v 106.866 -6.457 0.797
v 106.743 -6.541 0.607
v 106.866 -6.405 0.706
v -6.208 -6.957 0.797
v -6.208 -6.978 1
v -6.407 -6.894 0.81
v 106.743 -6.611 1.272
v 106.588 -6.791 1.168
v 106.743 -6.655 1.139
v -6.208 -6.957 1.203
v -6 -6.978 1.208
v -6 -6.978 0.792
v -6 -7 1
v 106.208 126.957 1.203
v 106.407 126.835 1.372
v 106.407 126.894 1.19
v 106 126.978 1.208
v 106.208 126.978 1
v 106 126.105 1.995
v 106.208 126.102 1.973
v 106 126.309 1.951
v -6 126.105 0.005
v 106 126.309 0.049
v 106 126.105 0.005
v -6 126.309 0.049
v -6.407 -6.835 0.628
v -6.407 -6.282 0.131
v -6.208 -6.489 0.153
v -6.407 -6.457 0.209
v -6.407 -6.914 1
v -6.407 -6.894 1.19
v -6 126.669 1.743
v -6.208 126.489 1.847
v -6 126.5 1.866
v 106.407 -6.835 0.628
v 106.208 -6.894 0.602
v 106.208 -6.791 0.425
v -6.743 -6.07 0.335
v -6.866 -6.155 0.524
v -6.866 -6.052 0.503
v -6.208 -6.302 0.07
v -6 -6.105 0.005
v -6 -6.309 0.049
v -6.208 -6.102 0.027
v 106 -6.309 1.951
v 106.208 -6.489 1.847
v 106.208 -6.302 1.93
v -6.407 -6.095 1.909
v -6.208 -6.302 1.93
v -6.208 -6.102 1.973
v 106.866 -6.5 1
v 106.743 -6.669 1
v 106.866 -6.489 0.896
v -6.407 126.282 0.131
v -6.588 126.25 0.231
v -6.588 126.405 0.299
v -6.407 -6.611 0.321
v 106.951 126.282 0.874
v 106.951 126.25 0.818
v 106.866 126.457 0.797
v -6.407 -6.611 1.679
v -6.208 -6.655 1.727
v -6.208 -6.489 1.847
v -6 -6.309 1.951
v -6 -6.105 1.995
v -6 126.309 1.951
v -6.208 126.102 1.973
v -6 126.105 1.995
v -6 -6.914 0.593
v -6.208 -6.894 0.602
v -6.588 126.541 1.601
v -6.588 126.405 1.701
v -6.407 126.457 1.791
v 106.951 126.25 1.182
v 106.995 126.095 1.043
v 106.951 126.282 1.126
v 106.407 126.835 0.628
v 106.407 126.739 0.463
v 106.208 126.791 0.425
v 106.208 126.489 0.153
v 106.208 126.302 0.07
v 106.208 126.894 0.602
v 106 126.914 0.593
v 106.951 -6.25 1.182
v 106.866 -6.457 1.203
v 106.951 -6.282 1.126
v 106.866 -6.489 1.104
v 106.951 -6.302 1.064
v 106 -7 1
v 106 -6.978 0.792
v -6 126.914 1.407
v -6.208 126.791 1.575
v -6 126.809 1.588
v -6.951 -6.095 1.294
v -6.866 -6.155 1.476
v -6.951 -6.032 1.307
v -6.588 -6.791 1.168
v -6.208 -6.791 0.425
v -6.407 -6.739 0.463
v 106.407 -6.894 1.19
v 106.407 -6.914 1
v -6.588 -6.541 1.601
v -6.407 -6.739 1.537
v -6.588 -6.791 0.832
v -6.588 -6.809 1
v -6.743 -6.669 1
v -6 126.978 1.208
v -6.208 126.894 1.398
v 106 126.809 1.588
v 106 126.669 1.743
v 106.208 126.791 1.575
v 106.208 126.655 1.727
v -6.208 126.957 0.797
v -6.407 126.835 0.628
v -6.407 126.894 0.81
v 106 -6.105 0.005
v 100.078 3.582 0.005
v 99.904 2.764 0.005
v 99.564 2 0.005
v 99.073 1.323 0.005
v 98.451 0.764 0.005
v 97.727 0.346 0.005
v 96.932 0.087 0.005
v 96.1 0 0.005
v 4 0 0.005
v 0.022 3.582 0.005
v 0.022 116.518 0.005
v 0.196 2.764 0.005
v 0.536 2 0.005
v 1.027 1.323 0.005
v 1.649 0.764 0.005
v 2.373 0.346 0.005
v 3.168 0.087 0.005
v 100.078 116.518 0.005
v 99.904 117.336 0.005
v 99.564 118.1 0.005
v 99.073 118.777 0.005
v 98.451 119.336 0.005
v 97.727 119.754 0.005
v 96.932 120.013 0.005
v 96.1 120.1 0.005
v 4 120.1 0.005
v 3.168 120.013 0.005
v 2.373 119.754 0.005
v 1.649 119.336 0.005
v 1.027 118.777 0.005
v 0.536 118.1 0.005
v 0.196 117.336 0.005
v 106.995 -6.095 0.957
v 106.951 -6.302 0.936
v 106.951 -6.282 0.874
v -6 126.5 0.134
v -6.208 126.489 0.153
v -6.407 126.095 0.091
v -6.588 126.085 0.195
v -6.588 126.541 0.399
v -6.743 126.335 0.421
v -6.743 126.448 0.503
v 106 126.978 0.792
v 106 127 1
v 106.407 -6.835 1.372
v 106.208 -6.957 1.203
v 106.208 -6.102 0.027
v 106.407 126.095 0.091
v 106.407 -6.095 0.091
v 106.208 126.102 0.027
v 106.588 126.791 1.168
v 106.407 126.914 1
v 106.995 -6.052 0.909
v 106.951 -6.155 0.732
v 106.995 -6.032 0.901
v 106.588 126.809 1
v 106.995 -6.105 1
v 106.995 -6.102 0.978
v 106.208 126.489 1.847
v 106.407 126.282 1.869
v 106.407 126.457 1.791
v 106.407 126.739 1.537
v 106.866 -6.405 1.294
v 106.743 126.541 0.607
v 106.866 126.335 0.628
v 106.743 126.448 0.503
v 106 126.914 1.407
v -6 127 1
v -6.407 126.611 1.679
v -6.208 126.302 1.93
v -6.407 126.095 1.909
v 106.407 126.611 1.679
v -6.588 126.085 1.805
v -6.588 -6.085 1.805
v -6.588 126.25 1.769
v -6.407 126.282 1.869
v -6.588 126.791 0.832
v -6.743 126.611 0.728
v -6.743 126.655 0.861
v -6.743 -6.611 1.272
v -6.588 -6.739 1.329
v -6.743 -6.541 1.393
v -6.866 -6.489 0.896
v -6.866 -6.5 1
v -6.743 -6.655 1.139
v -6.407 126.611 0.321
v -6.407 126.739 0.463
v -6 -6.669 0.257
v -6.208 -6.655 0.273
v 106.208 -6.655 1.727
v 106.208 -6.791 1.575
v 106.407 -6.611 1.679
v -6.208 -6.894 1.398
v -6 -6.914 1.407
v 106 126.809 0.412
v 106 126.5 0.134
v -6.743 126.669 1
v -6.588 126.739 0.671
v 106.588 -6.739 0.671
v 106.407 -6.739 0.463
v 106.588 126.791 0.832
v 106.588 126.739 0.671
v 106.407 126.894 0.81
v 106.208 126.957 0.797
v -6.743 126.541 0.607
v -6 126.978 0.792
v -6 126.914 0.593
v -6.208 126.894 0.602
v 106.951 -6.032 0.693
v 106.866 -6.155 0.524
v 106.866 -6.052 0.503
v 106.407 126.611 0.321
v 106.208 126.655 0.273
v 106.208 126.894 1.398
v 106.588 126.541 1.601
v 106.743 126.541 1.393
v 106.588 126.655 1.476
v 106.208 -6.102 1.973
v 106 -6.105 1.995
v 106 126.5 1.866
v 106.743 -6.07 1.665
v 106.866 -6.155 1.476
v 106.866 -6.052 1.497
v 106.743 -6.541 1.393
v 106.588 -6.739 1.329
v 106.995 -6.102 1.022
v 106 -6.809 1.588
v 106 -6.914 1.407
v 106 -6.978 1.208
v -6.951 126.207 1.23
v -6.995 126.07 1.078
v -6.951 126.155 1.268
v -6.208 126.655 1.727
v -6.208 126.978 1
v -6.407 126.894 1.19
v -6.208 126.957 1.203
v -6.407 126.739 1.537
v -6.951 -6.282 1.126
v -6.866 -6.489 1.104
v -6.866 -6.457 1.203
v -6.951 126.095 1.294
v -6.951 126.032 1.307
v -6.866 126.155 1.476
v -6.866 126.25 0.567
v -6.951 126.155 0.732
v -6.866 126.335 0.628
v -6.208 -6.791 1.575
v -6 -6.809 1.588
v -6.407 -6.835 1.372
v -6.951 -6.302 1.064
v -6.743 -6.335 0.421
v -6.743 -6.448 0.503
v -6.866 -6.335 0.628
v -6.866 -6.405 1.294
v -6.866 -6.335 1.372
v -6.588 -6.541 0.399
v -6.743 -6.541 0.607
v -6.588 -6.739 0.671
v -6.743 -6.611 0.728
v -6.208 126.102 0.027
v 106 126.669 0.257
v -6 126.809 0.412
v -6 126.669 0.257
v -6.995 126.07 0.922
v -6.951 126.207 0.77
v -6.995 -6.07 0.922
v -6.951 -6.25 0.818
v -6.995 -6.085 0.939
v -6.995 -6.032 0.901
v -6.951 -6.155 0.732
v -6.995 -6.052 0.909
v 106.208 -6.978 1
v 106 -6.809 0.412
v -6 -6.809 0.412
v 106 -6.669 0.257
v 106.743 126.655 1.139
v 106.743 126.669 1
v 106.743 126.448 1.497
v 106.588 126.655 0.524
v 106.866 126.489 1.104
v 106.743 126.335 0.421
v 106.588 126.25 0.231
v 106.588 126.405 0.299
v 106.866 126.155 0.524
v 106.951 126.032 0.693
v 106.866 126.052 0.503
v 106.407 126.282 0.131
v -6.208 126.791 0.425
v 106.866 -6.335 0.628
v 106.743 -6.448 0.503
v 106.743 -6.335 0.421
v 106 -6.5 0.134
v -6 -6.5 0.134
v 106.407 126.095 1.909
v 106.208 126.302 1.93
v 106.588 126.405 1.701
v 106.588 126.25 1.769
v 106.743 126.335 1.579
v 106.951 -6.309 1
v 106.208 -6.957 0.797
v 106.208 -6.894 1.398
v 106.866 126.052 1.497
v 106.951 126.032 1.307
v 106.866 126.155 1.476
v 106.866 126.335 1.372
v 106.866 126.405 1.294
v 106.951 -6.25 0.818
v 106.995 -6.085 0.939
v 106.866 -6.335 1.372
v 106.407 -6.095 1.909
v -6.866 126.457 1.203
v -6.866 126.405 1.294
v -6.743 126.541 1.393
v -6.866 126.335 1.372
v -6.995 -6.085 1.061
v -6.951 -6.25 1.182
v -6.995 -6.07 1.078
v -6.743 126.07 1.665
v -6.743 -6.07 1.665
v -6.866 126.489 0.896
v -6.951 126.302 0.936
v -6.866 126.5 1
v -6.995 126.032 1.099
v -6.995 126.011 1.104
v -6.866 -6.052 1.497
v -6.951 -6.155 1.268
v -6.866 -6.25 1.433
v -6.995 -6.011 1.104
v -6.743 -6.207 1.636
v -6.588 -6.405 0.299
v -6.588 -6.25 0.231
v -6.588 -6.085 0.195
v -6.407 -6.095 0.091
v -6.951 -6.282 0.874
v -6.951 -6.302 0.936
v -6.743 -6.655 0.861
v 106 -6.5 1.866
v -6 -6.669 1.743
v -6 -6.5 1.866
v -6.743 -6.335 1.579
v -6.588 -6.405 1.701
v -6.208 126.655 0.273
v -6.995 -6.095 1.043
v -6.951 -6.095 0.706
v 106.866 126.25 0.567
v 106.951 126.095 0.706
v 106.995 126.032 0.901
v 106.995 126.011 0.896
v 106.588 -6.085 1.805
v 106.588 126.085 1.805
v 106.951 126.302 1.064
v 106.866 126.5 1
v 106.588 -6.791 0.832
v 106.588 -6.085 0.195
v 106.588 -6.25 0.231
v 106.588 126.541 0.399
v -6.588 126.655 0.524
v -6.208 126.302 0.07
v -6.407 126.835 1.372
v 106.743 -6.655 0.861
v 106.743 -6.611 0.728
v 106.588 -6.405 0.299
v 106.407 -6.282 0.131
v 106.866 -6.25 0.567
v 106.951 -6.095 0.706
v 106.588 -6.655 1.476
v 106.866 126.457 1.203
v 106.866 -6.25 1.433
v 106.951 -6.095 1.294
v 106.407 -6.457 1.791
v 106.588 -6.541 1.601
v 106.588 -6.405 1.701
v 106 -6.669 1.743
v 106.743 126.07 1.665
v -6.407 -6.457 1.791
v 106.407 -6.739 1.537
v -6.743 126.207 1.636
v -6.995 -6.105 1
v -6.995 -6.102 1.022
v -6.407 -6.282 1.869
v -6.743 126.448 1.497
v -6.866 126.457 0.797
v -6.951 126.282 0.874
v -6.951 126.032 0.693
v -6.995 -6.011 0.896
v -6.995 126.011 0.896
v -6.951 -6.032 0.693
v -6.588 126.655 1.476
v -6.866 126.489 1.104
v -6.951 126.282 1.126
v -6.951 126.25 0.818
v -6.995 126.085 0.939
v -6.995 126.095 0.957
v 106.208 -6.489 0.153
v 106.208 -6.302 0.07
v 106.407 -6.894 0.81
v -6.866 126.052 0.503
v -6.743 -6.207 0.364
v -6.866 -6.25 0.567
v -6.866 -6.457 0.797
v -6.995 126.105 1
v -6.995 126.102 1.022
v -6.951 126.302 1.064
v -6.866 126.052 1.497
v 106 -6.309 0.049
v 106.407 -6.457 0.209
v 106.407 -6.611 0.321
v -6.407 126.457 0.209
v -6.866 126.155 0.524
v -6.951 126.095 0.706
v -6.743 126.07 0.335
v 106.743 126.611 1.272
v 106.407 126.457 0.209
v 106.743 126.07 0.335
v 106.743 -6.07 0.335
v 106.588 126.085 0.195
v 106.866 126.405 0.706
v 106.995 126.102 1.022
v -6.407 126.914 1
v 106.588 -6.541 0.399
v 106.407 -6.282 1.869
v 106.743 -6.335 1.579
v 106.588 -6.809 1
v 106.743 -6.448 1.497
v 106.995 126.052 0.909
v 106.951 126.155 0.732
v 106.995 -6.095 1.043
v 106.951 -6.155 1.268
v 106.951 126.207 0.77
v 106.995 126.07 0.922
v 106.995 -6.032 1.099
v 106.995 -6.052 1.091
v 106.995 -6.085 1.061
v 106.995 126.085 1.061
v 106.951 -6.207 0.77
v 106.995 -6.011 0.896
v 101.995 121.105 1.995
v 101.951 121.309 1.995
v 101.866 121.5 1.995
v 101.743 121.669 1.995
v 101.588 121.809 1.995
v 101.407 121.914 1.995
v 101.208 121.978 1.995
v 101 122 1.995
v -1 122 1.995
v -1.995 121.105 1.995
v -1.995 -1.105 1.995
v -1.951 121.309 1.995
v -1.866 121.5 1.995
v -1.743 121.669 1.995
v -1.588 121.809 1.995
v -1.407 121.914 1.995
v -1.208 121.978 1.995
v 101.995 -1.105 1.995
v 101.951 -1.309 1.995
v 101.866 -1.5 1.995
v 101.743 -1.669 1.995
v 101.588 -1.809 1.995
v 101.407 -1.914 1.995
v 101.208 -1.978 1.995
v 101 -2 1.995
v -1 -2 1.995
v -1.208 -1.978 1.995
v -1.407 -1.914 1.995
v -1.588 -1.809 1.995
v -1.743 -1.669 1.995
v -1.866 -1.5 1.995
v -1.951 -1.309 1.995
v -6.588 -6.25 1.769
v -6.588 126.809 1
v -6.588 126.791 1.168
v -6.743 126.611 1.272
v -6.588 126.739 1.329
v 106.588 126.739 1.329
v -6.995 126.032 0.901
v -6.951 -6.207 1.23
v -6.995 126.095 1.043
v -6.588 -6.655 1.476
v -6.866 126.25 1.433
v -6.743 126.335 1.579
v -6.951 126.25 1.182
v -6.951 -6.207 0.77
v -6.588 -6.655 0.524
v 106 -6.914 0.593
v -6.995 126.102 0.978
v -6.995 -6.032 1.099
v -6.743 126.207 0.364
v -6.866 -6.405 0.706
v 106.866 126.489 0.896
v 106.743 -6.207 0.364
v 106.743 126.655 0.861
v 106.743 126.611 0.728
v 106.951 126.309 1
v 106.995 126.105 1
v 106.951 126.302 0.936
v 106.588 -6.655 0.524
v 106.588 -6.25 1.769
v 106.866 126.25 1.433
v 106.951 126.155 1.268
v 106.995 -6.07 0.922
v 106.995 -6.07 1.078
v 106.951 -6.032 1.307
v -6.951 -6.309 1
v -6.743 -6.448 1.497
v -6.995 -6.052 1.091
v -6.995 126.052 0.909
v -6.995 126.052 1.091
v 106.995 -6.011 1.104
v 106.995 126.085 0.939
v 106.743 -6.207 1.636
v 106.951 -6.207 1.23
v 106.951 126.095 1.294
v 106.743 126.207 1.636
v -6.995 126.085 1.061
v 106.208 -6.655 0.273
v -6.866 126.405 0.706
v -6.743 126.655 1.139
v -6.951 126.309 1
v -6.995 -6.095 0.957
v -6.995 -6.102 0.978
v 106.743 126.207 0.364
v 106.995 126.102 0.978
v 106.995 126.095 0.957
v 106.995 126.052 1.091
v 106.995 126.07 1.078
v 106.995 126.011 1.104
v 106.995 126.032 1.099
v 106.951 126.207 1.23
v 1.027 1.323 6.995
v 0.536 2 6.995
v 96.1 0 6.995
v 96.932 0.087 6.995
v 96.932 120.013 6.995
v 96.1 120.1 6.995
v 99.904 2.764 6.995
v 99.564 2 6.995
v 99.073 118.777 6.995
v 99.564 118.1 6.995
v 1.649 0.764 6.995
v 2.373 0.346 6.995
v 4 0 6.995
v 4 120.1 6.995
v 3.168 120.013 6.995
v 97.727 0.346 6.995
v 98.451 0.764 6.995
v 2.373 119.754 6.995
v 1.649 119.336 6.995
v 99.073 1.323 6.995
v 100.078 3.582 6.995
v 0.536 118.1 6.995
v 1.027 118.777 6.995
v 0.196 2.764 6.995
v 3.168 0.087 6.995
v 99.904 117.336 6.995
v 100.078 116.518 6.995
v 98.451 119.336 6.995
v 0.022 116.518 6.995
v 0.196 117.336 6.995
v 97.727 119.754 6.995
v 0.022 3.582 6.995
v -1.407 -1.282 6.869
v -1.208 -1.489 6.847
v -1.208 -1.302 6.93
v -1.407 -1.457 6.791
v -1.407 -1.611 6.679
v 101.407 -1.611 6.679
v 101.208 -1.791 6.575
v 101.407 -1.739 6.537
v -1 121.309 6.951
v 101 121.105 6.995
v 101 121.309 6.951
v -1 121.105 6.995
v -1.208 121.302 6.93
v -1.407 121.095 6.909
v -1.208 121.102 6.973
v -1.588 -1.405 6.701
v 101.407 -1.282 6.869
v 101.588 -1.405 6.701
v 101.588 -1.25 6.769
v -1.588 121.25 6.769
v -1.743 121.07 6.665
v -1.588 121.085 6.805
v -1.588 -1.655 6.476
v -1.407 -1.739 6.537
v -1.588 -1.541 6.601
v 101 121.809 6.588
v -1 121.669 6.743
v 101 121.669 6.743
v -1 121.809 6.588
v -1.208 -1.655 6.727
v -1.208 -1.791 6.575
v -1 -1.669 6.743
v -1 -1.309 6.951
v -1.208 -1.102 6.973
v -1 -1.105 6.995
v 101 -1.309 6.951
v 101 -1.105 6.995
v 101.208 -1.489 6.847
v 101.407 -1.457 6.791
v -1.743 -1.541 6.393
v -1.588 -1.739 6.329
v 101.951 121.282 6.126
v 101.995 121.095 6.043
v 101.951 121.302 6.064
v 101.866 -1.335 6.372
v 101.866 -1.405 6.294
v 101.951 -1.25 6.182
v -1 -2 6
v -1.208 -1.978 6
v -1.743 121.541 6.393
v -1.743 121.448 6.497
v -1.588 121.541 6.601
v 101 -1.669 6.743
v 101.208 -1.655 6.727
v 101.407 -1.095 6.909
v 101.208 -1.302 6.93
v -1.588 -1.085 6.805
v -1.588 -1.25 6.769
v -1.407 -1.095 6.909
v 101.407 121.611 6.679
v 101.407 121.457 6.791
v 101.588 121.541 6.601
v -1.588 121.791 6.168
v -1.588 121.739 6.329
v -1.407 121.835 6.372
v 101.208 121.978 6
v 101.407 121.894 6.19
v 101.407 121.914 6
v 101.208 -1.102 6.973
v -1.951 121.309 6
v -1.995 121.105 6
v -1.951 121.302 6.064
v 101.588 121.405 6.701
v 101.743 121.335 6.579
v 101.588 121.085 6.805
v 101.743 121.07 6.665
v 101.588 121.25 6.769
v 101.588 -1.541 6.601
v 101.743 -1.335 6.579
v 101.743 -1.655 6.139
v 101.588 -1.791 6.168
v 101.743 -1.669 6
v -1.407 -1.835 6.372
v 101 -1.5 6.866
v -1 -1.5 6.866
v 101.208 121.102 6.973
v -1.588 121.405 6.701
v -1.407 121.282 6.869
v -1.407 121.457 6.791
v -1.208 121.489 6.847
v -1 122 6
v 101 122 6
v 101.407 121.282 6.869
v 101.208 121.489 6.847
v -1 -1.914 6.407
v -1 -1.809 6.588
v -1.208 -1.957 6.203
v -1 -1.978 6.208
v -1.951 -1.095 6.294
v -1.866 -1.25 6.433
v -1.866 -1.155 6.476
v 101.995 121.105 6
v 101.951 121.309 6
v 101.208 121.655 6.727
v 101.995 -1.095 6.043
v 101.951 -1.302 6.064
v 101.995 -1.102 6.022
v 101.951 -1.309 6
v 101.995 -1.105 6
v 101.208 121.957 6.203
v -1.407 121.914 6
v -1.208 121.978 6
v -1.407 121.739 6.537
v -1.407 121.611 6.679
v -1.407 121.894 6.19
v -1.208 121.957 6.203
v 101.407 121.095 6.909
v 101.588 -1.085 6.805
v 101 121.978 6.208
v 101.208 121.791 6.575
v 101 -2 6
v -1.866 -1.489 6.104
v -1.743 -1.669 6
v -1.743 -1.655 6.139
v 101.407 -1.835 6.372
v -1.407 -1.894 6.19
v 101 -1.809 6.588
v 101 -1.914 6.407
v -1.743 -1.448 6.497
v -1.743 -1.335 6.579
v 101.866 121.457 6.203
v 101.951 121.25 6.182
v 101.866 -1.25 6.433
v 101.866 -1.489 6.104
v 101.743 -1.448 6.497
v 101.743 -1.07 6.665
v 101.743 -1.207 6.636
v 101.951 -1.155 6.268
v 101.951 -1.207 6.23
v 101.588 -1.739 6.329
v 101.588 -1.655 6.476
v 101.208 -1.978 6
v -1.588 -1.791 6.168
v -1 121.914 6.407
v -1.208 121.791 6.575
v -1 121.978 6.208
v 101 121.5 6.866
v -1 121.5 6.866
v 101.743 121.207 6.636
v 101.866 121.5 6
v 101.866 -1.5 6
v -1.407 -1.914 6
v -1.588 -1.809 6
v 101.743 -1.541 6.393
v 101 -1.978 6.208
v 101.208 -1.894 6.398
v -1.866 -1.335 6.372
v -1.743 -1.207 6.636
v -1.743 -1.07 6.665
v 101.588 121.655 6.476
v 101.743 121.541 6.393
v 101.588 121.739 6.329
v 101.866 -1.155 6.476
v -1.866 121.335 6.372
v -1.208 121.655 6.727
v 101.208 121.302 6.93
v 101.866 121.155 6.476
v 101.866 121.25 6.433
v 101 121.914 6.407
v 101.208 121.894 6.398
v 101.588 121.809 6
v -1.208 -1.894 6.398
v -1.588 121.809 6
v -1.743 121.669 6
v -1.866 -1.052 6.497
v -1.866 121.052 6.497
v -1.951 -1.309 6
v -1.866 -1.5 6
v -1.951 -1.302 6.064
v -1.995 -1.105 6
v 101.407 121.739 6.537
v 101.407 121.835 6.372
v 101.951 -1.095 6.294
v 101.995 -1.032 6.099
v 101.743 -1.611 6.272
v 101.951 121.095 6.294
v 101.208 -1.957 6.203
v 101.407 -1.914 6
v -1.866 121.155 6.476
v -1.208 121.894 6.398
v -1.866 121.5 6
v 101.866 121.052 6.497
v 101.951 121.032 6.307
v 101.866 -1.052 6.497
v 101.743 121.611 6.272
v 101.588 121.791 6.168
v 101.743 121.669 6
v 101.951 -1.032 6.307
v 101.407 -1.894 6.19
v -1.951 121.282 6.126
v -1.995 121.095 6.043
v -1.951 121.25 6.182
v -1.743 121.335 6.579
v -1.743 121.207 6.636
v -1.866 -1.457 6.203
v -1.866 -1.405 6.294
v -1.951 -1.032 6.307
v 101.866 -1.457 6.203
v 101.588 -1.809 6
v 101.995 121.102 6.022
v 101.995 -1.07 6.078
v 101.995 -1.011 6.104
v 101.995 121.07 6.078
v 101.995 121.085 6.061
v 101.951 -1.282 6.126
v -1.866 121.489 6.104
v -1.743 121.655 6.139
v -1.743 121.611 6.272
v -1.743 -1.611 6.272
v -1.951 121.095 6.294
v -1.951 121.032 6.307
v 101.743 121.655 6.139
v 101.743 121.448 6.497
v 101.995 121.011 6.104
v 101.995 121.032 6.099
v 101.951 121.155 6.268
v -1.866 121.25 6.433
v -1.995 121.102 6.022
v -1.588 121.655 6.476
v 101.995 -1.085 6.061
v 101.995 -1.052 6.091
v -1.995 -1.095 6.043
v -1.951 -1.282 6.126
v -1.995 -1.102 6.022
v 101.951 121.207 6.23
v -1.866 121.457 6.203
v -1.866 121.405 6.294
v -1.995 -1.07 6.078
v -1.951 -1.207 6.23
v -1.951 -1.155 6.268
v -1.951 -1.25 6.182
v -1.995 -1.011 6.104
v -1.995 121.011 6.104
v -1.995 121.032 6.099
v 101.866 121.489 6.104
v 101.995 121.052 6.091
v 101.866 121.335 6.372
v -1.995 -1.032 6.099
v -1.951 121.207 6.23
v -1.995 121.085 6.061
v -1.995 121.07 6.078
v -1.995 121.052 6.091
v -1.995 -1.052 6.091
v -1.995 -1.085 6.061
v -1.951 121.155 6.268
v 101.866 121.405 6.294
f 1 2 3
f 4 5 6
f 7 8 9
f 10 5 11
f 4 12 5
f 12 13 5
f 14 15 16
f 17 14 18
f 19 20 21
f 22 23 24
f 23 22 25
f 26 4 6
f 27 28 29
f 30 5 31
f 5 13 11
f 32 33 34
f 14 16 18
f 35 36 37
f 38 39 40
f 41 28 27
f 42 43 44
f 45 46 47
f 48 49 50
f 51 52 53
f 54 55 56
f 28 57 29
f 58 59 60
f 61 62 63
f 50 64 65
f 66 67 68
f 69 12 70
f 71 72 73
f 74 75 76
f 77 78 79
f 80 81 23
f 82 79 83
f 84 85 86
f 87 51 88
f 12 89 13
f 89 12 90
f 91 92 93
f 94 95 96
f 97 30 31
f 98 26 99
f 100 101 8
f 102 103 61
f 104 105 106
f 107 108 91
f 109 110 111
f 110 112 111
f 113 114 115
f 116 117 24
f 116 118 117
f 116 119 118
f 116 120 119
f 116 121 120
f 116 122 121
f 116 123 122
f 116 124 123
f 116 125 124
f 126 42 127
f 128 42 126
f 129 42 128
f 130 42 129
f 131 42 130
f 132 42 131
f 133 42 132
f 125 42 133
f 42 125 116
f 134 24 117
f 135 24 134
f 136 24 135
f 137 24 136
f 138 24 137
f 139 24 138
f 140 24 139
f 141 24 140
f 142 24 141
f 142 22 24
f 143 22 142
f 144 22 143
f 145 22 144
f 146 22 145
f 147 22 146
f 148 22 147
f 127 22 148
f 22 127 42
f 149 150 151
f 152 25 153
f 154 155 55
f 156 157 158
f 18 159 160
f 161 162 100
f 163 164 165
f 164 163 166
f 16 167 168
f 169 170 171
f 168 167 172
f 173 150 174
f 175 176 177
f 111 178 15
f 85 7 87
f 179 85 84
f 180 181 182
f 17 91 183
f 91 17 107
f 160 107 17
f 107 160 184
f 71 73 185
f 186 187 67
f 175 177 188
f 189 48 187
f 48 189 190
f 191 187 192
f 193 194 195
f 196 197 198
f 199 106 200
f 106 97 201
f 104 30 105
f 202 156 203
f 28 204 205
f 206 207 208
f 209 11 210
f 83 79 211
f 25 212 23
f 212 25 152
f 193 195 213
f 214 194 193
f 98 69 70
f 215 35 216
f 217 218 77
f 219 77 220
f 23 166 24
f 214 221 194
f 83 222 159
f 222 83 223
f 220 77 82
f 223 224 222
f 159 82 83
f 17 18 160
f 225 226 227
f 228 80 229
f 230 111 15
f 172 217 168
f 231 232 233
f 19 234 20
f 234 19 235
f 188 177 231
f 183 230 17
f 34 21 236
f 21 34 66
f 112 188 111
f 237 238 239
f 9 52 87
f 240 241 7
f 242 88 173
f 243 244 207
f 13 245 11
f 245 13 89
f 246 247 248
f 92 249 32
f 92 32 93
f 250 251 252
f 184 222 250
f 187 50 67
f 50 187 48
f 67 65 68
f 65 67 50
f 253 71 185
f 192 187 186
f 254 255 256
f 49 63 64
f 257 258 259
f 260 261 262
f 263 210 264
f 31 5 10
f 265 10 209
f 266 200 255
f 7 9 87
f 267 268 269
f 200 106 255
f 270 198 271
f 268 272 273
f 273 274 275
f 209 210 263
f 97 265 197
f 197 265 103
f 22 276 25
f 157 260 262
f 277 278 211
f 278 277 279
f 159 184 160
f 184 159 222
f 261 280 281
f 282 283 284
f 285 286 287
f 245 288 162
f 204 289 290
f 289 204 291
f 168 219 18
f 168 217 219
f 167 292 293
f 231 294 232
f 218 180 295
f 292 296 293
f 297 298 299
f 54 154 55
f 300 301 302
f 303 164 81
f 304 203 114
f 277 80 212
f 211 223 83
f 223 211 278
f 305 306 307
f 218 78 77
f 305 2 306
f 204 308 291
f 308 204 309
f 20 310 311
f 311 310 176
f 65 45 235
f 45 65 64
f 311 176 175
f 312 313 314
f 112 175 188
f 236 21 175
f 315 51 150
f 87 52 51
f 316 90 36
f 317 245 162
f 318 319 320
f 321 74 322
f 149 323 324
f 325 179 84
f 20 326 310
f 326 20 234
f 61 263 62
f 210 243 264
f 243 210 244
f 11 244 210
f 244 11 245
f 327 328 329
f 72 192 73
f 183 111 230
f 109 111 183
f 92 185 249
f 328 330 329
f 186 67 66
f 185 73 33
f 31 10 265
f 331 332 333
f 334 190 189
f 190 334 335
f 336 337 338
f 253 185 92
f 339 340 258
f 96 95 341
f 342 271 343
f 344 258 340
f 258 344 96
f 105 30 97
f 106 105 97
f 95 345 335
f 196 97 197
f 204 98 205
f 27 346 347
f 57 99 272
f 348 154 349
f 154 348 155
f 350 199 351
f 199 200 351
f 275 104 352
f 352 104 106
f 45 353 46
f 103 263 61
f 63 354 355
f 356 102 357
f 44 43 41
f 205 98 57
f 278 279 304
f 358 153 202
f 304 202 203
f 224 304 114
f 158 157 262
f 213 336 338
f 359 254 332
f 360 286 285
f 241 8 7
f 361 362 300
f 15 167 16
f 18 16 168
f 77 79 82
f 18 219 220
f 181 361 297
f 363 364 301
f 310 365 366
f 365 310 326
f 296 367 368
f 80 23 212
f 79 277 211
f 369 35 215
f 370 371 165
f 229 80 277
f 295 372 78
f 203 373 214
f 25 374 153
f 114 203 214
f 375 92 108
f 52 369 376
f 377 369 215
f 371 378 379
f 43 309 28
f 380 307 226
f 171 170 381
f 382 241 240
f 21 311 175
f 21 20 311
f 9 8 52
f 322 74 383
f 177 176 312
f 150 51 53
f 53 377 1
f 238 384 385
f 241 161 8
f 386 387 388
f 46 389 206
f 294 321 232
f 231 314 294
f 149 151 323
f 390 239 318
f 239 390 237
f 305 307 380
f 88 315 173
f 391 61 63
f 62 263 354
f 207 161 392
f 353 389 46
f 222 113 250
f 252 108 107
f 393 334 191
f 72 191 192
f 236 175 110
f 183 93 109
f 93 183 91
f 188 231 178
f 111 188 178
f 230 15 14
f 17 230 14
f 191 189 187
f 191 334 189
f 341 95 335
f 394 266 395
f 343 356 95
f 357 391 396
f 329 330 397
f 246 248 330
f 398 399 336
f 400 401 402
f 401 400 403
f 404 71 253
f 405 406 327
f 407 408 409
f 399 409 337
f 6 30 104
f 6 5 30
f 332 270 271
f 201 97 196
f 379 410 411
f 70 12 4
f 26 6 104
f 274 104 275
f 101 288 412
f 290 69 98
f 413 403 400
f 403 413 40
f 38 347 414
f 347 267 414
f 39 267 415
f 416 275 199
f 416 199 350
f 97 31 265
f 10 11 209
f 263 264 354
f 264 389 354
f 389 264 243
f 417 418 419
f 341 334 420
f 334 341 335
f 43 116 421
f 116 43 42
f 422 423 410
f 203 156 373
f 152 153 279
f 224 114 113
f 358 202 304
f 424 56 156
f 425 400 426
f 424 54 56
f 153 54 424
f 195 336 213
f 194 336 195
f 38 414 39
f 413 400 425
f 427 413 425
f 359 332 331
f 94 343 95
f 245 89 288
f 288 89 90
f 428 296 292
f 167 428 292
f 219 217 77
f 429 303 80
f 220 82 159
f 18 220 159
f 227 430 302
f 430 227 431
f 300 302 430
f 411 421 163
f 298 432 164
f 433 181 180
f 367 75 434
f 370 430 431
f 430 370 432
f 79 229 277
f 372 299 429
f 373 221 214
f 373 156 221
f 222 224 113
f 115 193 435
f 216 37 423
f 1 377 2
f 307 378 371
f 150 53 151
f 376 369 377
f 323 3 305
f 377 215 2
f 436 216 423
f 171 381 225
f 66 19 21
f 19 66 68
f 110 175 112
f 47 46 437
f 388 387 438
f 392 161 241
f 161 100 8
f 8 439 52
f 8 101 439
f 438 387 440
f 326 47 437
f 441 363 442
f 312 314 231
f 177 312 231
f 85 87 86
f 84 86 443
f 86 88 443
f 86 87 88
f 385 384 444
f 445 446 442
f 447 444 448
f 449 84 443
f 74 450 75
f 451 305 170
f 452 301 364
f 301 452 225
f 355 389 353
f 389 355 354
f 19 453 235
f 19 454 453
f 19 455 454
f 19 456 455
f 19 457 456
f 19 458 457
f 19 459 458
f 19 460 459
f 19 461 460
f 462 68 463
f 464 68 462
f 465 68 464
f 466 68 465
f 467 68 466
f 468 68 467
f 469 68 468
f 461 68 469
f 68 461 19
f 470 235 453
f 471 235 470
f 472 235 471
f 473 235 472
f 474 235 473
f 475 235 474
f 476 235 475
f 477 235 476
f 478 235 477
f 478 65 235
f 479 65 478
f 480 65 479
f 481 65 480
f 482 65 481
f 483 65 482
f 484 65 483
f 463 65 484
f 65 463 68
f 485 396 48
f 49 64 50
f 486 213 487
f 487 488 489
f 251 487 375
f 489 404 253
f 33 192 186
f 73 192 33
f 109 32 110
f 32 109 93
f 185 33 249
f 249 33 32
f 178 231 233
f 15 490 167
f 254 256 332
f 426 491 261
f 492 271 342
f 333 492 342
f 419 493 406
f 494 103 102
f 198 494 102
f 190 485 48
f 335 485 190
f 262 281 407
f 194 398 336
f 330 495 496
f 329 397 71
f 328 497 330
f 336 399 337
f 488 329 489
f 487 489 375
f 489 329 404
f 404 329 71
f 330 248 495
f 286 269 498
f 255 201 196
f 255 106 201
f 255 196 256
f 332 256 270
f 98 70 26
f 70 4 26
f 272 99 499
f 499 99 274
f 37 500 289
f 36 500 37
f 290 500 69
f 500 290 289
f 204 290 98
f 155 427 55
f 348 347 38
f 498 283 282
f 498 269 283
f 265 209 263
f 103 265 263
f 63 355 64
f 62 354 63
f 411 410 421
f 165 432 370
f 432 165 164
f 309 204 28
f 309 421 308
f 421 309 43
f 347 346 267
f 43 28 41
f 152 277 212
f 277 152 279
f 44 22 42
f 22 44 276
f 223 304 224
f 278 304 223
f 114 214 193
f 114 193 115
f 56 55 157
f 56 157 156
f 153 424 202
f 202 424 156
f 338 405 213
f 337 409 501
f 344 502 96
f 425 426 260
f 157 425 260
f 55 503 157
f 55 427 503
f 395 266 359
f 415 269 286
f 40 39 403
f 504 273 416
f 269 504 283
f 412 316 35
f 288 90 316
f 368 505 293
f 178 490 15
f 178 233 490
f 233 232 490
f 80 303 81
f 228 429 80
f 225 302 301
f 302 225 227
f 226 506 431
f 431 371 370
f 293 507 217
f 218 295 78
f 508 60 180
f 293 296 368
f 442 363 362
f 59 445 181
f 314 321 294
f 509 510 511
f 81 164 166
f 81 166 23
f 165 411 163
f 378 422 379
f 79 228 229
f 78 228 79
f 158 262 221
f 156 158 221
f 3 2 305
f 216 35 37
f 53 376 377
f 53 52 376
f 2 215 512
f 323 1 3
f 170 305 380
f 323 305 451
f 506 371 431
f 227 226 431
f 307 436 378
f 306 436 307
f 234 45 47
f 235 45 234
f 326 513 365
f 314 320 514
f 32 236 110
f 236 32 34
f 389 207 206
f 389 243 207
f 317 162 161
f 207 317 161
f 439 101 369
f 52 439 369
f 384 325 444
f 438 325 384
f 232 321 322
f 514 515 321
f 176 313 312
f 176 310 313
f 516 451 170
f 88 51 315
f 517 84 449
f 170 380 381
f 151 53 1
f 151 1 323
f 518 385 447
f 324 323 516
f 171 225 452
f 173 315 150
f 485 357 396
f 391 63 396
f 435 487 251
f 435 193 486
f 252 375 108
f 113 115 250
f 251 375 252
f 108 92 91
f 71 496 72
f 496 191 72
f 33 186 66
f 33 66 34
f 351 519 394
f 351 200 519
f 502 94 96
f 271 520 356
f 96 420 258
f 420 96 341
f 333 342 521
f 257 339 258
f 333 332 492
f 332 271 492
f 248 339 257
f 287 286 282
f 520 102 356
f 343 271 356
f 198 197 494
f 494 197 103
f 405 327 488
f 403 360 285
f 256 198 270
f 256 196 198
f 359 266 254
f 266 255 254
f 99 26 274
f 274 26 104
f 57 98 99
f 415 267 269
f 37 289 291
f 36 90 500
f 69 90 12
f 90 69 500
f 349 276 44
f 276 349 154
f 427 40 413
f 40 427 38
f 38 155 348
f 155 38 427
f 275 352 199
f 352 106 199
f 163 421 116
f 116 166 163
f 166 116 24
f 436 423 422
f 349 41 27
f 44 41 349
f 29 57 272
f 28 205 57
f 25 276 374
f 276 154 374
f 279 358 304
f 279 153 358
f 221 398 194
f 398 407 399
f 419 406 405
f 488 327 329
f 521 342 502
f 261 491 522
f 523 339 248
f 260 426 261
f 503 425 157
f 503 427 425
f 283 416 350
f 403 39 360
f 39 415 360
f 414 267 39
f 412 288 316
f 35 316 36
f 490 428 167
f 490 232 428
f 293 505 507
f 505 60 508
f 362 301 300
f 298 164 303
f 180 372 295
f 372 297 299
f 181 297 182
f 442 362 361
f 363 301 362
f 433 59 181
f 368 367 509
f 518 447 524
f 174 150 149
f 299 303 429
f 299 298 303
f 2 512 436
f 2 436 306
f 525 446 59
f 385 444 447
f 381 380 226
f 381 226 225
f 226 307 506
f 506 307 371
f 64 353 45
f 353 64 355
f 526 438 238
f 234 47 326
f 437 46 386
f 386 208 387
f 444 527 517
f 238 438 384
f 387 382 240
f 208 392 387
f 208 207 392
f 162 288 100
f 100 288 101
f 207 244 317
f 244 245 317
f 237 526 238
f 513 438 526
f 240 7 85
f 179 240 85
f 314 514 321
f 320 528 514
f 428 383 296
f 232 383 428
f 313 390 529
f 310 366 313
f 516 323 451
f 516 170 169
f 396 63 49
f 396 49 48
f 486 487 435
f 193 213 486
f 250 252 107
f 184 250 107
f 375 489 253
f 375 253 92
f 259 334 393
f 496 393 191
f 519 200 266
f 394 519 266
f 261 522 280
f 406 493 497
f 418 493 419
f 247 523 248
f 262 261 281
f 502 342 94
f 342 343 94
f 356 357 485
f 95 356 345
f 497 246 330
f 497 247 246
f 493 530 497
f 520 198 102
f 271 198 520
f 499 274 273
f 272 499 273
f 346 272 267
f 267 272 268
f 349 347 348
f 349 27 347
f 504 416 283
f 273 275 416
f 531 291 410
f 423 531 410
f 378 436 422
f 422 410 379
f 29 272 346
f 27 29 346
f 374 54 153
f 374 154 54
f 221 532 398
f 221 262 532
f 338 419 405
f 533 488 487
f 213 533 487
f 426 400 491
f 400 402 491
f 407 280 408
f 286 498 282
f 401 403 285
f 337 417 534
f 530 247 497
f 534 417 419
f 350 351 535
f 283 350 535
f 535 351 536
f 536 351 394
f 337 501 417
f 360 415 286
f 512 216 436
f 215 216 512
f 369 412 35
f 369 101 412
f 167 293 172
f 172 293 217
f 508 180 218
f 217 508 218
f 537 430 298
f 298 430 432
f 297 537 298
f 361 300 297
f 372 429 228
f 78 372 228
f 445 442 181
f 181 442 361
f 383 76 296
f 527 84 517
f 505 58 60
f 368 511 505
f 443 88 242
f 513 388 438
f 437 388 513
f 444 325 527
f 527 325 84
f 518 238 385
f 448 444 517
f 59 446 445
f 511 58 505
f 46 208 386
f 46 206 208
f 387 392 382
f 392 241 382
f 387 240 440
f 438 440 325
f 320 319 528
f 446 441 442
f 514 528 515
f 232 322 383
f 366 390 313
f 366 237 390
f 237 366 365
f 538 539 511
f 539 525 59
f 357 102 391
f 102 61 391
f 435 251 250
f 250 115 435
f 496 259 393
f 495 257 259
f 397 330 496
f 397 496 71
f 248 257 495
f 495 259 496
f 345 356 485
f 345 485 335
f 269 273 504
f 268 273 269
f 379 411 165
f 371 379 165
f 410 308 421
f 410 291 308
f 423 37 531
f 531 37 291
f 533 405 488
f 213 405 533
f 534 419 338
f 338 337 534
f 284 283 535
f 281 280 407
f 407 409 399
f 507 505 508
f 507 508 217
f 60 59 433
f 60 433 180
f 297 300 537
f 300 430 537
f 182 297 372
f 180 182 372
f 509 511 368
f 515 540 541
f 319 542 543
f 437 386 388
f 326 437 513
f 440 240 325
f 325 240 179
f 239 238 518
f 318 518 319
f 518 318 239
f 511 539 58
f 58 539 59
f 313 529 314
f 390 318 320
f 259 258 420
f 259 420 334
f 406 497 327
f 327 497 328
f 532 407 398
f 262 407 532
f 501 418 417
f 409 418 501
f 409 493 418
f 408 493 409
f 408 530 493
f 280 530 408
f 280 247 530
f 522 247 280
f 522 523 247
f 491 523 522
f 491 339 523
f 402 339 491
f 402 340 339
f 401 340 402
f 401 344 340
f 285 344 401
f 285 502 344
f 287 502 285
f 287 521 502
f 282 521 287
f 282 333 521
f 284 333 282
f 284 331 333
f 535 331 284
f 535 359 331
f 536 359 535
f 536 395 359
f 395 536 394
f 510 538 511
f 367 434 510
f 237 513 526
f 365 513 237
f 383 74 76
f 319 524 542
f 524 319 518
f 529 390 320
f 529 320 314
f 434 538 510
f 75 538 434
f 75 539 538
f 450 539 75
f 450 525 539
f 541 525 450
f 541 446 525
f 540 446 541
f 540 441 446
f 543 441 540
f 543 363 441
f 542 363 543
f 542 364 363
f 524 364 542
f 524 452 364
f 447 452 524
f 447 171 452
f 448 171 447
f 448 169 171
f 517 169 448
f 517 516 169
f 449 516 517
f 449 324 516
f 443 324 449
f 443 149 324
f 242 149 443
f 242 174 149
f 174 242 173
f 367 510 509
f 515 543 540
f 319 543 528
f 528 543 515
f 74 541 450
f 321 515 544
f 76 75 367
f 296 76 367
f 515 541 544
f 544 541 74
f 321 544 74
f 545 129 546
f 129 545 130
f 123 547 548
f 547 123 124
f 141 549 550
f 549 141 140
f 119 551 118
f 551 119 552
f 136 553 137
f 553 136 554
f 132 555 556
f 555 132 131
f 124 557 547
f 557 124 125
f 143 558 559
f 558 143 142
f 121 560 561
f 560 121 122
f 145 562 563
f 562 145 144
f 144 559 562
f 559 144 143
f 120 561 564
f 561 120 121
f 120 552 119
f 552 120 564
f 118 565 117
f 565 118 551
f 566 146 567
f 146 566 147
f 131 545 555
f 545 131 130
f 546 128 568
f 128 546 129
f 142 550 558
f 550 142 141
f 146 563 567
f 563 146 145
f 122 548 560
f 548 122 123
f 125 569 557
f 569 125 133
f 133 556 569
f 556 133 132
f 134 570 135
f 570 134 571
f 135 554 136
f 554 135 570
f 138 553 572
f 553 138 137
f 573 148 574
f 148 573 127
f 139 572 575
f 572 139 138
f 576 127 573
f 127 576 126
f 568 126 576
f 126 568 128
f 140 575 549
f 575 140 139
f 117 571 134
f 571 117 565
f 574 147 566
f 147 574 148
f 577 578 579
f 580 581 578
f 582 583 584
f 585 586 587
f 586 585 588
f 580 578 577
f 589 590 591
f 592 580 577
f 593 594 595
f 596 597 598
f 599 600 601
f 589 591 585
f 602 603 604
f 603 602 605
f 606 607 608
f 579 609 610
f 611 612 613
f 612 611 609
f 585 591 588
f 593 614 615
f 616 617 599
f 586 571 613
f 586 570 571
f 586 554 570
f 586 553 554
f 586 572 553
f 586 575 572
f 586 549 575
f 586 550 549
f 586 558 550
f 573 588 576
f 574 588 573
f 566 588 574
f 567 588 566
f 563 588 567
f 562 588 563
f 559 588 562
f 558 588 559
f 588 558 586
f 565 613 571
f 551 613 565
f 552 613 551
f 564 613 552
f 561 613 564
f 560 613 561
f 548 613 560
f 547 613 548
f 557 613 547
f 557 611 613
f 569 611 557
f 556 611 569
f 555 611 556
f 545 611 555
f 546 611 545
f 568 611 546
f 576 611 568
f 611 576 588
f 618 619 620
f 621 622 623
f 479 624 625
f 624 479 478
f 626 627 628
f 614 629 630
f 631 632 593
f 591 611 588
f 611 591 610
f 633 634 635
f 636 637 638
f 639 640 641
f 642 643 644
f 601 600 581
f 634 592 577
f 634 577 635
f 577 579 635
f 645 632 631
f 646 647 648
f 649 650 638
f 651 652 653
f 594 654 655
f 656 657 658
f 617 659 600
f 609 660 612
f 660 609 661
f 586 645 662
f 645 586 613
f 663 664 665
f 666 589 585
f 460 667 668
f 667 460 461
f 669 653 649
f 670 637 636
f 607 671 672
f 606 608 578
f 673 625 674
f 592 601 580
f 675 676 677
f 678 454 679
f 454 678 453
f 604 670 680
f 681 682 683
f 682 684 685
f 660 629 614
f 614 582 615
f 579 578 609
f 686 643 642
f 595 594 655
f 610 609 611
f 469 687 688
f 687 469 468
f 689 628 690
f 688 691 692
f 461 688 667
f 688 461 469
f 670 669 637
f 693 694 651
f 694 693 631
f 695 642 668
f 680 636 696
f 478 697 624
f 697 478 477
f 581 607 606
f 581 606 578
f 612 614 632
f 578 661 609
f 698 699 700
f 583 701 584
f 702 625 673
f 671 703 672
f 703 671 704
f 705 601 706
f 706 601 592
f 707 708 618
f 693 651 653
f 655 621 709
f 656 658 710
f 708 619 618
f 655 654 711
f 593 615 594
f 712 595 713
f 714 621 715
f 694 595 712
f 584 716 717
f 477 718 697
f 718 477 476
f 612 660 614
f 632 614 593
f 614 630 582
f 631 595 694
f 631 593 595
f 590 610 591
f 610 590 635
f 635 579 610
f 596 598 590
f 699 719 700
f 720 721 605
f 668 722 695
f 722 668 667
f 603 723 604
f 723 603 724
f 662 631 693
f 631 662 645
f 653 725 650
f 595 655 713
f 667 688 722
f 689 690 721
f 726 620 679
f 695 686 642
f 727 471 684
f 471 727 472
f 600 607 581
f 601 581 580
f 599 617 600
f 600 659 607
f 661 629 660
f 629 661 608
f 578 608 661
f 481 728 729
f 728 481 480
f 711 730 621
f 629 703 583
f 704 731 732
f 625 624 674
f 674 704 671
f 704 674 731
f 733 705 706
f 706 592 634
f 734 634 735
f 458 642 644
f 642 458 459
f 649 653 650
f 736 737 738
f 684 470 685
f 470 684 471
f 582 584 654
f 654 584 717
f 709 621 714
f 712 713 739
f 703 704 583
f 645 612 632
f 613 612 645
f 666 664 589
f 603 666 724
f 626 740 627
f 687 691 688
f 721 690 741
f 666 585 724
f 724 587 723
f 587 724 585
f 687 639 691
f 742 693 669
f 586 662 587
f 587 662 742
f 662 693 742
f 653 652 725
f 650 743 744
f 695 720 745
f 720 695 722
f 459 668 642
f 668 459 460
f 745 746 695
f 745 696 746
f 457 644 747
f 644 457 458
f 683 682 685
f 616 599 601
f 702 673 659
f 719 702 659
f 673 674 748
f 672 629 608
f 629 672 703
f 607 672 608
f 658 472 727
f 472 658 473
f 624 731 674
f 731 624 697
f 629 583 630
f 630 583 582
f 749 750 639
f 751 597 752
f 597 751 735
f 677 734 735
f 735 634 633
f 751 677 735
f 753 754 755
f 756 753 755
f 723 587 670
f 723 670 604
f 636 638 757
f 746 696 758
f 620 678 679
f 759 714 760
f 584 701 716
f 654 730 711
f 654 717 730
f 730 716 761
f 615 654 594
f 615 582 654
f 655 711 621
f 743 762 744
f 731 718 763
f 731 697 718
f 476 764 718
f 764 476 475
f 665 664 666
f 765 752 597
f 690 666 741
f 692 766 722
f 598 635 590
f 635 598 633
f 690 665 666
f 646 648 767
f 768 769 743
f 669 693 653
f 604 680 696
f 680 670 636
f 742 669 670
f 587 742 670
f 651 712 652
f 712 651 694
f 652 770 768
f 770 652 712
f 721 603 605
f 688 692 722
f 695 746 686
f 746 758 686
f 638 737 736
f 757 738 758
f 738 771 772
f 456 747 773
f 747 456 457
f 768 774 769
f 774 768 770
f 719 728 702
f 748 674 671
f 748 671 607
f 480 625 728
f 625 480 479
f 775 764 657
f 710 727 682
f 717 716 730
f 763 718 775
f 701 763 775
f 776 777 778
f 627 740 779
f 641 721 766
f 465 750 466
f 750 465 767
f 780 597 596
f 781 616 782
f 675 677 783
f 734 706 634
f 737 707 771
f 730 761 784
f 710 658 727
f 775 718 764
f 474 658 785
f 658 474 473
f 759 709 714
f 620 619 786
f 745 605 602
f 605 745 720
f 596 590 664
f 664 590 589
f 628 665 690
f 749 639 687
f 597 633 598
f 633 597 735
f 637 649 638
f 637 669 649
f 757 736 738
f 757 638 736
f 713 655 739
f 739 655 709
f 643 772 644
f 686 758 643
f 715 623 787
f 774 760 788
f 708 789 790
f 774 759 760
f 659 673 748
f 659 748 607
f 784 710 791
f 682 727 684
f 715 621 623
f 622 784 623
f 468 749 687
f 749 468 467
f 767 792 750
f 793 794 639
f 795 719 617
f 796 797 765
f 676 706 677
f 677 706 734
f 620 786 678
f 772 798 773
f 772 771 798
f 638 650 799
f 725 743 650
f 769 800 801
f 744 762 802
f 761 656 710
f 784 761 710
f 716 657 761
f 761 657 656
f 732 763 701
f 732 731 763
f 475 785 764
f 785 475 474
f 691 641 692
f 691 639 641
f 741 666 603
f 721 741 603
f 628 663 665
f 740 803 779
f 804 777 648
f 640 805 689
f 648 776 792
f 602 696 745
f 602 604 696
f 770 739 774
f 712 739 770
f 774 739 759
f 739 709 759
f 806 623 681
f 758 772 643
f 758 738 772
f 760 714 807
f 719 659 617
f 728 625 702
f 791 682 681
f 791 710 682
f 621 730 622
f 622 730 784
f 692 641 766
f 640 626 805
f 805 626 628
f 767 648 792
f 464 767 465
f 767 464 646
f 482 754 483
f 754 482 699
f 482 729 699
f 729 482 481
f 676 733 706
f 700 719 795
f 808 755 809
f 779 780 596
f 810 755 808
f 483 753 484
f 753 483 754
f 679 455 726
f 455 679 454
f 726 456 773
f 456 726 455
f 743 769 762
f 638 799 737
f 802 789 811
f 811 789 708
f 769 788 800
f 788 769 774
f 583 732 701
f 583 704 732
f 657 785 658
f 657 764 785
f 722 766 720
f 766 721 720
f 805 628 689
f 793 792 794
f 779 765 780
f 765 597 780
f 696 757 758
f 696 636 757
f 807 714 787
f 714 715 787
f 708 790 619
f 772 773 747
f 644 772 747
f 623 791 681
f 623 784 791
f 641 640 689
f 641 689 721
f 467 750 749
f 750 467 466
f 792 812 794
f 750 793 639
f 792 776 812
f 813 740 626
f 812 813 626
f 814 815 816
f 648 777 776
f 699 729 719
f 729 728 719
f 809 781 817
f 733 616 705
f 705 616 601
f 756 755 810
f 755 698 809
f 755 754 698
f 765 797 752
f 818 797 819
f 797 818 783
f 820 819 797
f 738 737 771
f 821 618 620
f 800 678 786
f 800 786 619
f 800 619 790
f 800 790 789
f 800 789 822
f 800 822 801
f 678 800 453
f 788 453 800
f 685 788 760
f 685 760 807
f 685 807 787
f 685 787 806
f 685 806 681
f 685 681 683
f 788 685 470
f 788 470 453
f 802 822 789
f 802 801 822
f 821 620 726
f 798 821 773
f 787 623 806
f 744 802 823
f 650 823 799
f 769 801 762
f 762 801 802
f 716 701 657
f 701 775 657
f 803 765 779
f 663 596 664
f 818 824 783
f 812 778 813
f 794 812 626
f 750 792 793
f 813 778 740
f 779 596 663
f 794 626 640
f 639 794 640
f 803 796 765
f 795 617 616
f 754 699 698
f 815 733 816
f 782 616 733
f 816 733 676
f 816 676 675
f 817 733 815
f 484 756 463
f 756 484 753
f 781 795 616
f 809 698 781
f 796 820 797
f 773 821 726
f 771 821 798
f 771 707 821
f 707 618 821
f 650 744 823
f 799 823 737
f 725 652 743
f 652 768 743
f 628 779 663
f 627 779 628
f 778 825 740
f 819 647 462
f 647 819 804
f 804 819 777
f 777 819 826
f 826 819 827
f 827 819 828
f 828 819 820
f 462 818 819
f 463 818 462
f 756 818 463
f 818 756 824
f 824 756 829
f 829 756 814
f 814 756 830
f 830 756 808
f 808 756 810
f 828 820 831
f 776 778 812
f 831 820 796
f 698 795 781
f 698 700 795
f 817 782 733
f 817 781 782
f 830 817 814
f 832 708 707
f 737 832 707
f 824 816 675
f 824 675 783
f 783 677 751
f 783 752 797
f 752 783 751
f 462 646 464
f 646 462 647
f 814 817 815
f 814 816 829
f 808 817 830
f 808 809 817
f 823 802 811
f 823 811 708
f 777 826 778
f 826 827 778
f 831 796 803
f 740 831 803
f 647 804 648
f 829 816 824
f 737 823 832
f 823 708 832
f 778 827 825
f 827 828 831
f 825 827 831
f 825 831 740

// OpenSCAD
// Export: Frontpanel
use <./rpi_enclosure_extended.scad>

rotate([90,0,90]) frame();
